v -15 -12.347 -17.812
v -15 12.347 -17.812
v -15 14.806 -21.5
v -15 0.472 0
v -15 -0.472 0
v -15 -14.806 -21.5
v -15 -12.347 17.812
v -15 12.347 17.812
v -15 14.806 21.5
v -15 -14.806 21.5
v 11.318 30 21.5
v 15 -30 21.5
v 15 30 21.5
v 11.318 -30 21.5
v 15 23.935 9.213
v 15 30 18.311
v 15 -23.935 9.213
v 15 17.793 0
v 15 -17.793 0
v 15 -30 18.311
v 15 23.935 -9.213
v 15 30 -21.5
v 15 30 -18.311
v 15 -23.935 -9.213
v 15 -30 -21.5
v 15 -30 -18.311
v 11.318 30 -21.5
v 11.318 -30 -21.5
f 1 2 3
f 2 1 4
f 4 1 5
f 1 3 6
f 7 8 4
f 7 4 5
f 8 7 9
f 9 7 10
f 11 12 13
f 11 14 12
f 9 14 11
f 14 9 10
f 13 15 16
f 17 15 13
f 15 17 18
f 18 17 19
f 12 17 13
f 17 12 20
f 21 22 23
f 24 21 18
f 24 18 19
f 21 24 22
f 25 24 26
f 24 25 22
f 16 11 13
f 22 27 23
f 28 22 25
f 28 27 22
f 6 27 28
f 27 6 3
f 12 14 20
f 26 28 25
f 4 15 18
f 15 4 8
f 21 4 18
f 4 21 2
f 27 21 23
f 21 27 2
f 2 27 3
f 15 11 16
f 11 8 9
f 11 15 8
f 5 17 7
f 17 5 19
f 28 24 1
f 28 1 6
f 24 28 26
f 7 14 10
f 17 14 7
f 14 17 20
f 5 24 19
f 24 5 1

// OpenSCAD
difference(){
  cube(center = true, size = [30, 60, 43]);
  translate(v = [0, 38, 0]){
    rotate(a = [90, 0, 120]){
      linear_extrude(center = true, height = 80){
        circle($fn = 6, r = 25);
      }
    }
  }
  translate(v = [0, -38, 0]){
    rotate(a = [90, 0, -120]){
      linear_extrude(center = true, height = 80){
        circle($fn = 6, r = 25);
      }
    }
  }
}
